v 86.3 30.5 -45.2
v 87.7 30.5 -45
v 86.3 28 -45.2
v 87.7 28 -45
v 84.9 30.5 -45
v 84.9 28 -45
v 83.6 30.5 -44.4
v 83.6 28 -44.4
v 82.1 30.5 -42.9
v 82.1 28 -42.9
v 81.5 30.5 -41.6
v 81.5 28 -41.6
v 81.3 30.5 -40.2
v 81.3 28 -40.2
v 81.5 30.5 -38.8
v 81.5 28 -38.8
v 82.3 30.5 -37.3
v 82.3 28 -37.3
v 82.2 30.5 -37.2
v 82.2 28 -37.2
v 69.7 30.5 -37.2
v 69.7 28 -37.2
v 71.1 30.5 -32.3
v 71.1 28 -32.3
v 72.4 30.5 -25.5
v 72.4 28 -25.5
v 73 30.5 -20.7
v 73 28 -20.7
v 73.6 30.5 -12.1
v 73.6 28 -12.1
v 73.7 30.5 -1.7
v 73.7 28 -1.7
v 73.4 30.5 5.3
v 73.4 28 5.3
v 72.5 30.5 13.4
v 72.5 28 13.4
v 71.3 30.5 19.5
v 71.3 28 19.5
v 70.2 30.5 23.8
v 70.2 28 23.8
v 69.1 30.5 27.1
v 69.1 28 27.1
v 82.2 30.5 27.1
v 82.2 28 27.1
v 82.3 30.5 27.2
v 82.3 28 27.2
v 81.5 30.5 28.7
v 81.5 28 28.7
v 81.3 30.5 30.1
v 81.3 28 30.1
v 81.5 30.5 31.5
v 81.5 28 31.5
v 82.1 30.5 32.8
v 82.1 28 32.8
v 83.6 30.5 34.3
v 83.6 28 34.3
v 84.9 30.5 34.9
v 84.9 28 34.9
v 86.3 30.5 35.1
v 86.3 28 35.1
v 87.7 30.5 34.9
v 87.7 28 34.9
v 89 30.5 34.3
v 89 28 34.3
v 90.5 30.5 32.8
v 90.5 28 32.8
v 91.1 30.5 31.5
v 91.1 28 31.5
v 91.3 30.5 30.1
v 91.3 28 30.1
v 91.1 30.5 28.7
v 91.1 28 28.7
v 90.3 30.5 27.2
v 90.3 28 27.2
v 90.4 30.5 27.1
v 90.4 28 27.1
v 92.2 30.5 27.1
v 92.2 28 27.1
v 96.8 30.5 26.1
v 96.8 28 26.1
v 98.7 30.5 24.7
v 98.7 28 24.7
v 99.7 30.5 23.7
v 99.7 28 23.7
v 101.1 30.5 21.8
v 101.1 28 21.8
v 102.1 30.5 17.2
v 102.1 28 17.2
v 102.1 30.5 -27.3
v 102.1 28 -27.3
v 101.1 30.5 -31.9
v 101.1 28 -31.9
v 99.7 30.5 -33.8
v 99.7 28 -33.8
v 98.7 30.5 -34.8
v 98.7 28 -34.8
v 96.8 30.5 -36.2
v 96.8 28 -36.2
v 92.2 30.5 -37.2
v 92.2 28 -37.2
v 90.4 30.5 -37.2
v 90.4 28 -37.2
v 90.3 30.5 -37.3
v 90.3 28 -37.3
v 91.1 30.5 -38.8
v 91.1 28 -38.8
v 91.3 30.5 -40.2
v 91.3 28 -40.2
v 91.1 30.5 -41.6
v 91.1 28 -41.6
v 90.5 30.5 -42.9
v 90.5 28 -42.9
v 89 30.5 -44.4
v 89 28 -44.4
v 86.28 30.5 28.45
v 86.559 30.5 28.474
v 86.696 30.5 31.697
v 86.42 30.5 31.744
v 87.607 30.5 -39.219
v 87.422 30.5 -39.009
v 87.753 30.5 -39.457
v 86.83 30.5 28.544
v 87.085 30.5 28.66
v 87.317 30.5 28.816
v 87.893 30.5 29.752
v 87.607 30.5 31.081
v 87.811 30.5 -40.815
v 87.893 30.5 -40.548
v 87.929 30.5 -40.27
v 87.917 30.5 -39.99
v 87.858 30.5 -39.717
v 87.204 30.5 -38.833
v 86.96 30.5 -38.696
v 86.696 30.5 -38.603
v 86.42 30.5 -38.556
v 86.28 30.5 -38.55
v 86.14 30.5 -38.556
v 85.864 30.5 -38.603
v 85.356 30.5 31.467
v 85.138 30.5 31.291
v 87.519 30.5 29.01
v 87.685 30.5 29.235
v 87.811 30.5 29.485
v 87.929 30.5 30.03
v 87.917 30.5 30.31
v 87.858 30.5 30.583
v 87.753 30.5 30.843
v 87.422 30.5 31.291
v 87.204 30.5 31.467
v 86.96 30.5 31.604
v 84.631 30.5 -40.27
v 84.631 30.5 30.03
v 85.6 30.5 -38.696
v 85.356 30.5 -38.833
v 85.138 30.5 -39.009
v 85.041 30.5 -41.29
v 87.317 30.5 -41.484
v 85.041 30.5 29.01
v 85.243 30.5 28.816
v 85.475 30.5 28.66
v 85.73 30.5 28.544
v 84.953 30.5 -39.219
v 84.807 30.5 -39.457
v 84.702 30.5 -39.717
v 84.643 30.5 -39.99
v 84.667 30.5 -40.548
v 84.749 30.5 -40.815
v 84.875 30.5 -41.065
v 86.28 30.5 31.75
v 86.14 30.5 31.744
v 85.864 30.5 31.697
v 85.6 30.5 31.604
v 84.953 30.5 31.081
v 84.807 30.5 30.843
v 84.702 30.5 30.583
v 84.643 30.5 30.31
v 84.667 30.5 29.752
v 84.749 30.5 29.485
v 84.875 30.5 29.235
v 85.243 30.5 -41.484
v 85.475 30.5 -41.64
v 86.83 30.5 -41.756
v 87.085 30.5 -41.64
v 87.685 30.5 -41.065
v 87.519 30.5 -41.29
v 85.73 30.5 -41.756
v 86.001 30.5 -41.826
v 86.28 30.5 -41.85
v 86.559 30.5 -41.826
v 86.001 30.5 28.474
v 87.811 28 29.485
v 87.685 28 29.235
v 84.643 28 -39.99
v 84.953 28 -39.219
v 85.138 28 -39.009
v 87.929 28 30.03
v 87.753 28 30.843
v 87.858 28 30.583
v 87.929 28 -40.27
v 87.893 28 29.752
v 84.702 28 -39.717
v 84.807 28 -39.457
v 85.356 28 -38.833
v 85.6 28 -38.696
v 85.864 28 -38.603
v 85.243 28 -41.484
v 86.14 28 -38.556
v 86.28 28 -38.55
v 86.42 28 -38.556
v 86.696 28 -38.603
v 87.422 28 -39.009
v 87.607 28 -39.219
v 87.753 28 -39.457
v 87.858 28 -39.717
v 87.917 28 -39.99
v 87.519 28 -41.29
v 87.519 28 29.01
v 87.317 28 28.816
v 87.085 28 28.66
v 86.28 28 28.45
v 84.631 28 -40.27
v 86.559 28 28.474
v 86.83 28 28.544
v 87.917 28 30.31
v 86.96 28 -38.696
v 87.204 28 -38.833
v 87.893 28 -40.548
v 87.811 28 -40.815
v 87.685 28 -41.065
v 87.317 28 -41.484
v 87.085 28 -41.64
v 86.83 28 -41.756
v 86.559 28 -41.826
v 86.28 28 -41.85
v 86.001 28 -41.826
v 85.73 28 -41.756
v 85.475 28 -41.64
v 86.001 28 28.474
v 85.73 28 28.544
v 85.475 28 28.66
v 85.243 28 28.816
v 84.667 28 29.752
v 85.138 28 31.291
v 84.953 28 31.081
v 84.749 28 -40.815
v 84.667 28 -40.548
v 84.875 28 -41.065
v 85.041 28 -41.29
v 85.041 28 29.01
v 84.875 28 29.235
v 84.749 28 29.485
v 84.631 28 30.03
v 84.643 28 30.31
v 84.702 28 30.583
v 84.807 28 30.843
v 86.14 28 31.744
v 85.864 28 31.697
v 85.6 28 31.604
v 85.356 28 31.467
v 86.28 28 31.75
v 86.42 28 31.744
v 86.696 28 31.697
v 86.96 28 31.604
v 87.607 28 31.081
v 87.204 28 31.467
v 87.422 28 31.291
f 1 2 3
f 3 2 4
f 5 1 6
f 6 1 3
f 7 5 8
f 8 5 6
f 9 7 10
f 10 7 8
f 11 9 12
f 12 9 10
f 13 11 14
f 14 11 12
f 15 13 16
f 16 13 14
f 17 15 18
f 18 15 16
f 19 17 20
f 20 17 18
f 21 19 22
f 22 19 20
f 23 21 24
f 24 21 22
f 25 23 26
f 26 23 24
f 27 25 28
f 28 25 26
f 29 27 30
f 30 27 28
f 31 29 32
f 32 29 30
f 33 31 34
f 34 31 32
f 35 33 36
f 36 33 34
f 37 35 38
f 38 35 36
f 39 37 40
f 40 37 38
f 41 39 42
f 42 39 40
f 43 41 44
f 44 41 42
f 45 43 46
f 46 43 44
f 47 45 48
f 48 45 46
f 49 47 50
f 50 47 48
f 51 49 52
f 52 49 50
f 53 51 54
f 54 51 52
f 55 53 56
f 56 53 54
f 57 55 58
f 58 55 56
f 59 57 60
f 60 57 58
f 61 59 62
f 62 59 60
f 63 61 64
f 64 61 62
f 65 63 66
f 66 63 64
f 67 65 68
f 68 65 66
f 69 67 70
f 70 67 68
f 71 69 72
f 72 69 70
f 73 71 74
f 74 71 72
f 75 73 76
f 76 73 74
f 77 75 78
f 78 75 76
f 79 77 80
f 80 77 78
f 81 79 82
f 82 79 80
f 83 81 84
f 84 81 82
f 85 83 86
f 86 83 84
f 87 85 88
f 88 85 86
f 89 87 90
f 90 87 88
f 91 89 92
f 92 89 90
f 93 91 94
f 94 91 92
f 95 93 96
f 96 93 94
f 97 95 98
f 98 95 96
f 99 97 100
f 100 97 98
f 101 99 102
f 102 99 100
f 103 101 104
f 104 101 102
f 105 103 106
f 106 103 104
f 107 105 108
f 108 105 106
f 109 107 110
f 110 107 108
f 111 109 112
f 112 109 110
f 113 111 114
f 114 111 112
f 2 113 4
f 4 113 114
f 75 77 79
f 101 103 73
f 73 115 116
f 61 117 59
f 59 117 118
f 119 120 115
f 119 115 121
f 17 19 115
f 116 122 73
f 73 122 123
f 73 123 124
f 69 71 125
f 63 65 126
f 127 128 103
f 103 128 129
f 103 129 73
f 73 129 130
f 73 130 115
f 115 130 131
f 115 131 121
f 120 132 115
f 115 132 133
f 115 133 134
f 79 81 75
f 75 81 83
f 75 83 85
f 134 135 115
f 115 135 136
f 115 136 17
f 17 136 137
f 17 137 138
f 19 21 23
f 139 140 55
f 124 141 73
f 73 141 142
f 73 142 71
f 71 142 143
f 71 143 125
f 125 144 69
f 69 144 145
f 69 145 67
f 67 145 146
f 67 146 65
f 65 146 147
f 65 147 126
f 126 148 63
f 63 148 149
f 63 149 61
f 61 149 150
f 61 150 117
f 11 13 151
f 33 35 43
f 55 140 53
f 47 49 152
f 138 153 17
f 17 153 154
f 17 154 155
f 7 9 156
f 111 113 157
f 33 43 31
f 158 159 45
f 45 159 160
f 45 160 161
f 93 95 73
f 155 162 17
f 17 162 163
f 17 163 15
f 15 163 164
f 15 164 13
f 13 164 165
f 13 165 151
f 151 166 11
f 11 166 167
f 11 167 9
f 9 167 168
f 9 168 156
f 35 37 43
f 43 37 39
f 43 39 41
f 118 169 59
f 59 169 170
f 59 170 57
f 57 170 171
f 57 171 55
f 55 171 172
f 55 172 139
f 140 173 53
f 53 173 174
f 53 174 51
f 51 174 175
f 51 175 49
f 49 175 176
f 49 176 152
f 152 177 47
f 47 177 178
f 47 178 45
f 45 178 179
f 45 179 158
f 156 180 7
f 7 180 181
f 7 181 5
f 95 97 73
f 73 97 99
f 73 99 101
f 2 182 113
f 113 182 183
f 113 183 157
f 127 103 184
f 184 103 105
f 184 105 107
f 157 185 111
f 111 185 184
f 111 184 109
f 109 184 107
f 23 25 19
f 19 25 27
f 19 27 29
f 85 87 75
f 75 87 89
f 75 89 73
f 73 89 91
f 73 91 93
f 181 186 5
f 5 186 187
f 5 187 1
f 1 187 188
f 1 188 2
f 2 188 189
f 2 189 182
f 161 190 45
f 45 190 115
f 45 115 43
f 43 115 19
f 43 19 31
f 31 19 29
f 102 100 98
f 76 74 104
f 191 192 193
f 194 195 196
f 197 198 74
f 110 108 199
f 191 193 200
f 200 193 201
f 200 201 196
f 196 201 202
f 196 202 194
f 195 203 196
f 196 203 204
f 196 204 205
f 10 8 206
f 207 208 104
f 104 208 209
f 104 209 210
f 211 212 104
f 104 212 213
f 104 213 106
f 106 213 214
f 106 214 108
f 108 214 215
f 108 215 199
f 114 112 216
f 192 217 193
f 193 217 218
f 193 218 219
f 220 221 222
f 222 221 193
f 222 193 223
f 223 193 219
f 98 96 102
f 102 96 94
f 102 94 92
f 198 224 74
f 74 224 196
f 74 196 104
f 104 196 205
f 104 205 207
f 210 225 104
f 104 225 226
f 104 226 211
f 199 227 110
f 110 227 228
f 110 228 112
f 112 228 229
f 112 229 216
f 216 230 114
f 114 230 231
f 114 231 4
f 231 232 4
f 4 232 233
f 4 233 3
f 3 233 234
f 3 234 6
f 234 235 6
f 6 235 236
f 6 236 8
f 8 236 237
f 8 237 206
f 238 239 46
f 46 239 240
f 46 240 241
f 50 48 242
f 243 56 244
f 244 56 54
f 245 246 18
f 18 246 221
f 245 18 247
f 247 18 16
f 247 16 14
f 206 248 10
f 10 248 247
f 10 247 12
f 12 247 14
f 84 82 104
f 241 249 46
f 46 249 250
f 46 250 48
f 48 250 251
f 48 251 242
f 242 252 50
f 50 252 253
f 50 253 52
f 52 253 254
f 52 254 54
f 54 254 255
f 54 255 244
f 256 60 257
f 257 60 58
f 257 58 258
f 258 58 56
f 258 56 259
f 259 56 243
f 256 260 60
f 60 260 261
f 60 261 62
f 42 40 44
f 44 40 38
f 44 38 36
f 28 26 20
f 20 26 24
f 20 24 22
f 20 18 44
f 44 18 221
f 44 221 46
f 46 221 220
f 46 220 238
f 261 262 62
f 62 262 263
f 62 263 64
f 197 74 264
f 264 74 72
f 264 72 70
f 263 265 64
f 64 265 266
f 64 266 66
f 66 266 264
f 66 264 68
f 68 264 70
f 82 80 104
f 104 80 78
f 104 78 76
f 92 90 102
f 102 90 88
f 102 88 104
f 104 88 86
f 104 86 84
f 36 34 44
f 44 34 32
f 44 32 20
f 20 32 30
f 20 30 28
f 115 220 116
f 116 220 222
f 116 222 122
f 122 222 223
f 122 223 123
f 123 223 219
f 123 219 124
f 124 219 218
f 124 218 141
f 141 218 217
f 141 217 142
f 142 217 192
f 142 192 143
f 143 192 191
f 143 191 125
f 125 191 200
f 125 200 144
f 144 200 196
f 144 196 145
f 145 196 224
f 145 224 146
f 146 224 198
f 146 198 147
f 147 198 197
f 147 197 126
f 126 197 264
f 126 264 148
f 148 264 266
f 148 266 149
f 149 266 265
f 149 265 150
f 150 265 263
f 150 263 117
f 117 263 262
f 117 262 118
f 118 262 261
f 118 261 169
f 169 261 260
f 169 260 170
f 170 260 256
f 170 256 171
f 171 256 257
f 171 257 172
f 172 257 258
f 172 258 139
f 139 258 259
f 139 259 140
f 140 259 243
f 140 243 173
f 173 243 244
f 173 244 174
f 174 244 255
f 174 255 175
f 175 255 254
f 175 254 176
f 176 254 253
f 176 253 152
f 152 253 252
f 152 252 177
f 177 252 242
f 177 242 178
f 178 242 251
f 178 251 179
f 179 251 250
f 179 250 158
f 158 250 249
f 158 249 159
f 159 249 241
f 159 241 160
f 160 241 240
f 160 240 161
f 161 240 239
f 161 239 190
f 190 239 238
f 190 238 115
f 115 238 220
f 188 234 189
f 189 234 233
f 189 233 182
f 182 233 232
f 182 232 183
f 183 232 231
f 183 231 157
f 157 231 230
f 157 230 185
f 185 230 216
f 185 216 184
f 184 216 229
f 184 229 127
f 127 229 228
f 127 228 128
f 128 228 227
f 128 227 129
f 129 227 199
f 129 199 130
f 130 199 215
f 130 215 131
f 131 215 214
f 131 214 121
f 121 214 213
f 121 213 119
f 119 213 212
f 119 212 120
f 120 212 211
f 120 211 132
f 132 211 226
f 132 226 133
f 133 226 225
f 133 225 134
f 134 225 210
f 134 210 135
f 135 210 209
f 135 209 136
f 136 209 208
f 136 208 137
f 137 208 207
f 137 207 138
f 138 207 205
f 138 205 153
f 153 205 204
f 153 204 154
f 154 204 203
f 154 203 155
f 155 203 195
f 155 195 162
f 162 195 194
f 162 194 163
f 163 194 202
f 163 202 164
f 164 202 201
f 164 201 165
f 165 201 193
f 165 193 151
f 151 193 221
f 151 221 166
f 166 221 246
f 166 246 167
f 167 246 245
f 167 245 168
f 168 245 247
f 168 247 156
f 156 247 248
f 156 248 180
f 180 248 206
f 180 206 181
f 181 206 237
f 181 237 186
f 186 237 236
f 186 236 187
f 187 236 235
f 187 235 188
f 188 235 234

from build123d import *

# Parameters (mm, degrees)
PEDAL_COVER_DEPTH       = 2.5
SKETCH2_R               = 1.65
COVER_SCREW_HOLES_DEPTH = 112.685719768


with BuildPart() as part:
    # Sketch1 → Pedal cover (new body)
    with BuildSketch(Plane(origin=(0, 28, 0), x_dir=(1, 0, 0), z_dir=(0, 1, 0))):
        Polygon((86.3, 45.2), (84.9, 45), (83.6, 44.4), (82.1, 42.9), (81.5, 41.6), (81.3, 40.2), (81.5, 38.8), (82.3, 37.3), (82.2, 37.2), (69.7, 37.2), (71.1, 32.3), (72.4, 25.5), (73, 20.7), (73.6, 12.1), (73.7, 1.7), (73.4, -5.3), (72.5, -13.4), (71.3, -19.5), (70.2, -23.8), (69.1, -27.1), (82.2, -27.1), (82.3, -27.2), (81.5, -28.7), (81.3, -30.1), (81.5, -31.5), (82.1, -32.8), (83.6, -34.3), (84.9, -34.9), (86.3, -35.1), (87.7, -34.9), (89, -34.3), (90.5, -32.8), (91.1, -31.5), (91.3, -30.1), (91.1, -28.7), (90.3, -27.2), (90.4, -27.1), (92.2, -27.1), (96.8, -26.1), (98.7, -24.7), (99.7, -23.7), (101.1, -21.8), (102.1, -17.2), (102.1, 27.3), (101.1, 31.9), (99.7, 33.8), (98.7, 34.8), (96.8, 36.2), (92.2, 37.2), (90.4, 37.2), (90.3, 37.3), (91.1, 38.8), (91.3, 40.2), (91.1, 41.6), (90.5, 42.9), (89, 44.4), (87.7, 45), align=None)
    extrude(amount=PEDAL_COVER_DEPTH)

    # Sketch2 → Cover screw holes (cut, through all)
    with BuildSketch(Plane(origin=(0, 28, 0), x_dir=(1, 0, 0), z_dir=(0, 1, 0))):
        with Locations(Location((86.28, 40.2, 0), (0, 0, 270))):
            Circle(SKETCH2_R)
        with Locations(Location((86.28, -30.1, 0), (0, 0, 270))):
            Circle(SKETCH2_R)
    extrude(amount=COVER_SCREW_HOLES_DEPTH, mode=Mode.SUBTRACT)


solid = part.part
